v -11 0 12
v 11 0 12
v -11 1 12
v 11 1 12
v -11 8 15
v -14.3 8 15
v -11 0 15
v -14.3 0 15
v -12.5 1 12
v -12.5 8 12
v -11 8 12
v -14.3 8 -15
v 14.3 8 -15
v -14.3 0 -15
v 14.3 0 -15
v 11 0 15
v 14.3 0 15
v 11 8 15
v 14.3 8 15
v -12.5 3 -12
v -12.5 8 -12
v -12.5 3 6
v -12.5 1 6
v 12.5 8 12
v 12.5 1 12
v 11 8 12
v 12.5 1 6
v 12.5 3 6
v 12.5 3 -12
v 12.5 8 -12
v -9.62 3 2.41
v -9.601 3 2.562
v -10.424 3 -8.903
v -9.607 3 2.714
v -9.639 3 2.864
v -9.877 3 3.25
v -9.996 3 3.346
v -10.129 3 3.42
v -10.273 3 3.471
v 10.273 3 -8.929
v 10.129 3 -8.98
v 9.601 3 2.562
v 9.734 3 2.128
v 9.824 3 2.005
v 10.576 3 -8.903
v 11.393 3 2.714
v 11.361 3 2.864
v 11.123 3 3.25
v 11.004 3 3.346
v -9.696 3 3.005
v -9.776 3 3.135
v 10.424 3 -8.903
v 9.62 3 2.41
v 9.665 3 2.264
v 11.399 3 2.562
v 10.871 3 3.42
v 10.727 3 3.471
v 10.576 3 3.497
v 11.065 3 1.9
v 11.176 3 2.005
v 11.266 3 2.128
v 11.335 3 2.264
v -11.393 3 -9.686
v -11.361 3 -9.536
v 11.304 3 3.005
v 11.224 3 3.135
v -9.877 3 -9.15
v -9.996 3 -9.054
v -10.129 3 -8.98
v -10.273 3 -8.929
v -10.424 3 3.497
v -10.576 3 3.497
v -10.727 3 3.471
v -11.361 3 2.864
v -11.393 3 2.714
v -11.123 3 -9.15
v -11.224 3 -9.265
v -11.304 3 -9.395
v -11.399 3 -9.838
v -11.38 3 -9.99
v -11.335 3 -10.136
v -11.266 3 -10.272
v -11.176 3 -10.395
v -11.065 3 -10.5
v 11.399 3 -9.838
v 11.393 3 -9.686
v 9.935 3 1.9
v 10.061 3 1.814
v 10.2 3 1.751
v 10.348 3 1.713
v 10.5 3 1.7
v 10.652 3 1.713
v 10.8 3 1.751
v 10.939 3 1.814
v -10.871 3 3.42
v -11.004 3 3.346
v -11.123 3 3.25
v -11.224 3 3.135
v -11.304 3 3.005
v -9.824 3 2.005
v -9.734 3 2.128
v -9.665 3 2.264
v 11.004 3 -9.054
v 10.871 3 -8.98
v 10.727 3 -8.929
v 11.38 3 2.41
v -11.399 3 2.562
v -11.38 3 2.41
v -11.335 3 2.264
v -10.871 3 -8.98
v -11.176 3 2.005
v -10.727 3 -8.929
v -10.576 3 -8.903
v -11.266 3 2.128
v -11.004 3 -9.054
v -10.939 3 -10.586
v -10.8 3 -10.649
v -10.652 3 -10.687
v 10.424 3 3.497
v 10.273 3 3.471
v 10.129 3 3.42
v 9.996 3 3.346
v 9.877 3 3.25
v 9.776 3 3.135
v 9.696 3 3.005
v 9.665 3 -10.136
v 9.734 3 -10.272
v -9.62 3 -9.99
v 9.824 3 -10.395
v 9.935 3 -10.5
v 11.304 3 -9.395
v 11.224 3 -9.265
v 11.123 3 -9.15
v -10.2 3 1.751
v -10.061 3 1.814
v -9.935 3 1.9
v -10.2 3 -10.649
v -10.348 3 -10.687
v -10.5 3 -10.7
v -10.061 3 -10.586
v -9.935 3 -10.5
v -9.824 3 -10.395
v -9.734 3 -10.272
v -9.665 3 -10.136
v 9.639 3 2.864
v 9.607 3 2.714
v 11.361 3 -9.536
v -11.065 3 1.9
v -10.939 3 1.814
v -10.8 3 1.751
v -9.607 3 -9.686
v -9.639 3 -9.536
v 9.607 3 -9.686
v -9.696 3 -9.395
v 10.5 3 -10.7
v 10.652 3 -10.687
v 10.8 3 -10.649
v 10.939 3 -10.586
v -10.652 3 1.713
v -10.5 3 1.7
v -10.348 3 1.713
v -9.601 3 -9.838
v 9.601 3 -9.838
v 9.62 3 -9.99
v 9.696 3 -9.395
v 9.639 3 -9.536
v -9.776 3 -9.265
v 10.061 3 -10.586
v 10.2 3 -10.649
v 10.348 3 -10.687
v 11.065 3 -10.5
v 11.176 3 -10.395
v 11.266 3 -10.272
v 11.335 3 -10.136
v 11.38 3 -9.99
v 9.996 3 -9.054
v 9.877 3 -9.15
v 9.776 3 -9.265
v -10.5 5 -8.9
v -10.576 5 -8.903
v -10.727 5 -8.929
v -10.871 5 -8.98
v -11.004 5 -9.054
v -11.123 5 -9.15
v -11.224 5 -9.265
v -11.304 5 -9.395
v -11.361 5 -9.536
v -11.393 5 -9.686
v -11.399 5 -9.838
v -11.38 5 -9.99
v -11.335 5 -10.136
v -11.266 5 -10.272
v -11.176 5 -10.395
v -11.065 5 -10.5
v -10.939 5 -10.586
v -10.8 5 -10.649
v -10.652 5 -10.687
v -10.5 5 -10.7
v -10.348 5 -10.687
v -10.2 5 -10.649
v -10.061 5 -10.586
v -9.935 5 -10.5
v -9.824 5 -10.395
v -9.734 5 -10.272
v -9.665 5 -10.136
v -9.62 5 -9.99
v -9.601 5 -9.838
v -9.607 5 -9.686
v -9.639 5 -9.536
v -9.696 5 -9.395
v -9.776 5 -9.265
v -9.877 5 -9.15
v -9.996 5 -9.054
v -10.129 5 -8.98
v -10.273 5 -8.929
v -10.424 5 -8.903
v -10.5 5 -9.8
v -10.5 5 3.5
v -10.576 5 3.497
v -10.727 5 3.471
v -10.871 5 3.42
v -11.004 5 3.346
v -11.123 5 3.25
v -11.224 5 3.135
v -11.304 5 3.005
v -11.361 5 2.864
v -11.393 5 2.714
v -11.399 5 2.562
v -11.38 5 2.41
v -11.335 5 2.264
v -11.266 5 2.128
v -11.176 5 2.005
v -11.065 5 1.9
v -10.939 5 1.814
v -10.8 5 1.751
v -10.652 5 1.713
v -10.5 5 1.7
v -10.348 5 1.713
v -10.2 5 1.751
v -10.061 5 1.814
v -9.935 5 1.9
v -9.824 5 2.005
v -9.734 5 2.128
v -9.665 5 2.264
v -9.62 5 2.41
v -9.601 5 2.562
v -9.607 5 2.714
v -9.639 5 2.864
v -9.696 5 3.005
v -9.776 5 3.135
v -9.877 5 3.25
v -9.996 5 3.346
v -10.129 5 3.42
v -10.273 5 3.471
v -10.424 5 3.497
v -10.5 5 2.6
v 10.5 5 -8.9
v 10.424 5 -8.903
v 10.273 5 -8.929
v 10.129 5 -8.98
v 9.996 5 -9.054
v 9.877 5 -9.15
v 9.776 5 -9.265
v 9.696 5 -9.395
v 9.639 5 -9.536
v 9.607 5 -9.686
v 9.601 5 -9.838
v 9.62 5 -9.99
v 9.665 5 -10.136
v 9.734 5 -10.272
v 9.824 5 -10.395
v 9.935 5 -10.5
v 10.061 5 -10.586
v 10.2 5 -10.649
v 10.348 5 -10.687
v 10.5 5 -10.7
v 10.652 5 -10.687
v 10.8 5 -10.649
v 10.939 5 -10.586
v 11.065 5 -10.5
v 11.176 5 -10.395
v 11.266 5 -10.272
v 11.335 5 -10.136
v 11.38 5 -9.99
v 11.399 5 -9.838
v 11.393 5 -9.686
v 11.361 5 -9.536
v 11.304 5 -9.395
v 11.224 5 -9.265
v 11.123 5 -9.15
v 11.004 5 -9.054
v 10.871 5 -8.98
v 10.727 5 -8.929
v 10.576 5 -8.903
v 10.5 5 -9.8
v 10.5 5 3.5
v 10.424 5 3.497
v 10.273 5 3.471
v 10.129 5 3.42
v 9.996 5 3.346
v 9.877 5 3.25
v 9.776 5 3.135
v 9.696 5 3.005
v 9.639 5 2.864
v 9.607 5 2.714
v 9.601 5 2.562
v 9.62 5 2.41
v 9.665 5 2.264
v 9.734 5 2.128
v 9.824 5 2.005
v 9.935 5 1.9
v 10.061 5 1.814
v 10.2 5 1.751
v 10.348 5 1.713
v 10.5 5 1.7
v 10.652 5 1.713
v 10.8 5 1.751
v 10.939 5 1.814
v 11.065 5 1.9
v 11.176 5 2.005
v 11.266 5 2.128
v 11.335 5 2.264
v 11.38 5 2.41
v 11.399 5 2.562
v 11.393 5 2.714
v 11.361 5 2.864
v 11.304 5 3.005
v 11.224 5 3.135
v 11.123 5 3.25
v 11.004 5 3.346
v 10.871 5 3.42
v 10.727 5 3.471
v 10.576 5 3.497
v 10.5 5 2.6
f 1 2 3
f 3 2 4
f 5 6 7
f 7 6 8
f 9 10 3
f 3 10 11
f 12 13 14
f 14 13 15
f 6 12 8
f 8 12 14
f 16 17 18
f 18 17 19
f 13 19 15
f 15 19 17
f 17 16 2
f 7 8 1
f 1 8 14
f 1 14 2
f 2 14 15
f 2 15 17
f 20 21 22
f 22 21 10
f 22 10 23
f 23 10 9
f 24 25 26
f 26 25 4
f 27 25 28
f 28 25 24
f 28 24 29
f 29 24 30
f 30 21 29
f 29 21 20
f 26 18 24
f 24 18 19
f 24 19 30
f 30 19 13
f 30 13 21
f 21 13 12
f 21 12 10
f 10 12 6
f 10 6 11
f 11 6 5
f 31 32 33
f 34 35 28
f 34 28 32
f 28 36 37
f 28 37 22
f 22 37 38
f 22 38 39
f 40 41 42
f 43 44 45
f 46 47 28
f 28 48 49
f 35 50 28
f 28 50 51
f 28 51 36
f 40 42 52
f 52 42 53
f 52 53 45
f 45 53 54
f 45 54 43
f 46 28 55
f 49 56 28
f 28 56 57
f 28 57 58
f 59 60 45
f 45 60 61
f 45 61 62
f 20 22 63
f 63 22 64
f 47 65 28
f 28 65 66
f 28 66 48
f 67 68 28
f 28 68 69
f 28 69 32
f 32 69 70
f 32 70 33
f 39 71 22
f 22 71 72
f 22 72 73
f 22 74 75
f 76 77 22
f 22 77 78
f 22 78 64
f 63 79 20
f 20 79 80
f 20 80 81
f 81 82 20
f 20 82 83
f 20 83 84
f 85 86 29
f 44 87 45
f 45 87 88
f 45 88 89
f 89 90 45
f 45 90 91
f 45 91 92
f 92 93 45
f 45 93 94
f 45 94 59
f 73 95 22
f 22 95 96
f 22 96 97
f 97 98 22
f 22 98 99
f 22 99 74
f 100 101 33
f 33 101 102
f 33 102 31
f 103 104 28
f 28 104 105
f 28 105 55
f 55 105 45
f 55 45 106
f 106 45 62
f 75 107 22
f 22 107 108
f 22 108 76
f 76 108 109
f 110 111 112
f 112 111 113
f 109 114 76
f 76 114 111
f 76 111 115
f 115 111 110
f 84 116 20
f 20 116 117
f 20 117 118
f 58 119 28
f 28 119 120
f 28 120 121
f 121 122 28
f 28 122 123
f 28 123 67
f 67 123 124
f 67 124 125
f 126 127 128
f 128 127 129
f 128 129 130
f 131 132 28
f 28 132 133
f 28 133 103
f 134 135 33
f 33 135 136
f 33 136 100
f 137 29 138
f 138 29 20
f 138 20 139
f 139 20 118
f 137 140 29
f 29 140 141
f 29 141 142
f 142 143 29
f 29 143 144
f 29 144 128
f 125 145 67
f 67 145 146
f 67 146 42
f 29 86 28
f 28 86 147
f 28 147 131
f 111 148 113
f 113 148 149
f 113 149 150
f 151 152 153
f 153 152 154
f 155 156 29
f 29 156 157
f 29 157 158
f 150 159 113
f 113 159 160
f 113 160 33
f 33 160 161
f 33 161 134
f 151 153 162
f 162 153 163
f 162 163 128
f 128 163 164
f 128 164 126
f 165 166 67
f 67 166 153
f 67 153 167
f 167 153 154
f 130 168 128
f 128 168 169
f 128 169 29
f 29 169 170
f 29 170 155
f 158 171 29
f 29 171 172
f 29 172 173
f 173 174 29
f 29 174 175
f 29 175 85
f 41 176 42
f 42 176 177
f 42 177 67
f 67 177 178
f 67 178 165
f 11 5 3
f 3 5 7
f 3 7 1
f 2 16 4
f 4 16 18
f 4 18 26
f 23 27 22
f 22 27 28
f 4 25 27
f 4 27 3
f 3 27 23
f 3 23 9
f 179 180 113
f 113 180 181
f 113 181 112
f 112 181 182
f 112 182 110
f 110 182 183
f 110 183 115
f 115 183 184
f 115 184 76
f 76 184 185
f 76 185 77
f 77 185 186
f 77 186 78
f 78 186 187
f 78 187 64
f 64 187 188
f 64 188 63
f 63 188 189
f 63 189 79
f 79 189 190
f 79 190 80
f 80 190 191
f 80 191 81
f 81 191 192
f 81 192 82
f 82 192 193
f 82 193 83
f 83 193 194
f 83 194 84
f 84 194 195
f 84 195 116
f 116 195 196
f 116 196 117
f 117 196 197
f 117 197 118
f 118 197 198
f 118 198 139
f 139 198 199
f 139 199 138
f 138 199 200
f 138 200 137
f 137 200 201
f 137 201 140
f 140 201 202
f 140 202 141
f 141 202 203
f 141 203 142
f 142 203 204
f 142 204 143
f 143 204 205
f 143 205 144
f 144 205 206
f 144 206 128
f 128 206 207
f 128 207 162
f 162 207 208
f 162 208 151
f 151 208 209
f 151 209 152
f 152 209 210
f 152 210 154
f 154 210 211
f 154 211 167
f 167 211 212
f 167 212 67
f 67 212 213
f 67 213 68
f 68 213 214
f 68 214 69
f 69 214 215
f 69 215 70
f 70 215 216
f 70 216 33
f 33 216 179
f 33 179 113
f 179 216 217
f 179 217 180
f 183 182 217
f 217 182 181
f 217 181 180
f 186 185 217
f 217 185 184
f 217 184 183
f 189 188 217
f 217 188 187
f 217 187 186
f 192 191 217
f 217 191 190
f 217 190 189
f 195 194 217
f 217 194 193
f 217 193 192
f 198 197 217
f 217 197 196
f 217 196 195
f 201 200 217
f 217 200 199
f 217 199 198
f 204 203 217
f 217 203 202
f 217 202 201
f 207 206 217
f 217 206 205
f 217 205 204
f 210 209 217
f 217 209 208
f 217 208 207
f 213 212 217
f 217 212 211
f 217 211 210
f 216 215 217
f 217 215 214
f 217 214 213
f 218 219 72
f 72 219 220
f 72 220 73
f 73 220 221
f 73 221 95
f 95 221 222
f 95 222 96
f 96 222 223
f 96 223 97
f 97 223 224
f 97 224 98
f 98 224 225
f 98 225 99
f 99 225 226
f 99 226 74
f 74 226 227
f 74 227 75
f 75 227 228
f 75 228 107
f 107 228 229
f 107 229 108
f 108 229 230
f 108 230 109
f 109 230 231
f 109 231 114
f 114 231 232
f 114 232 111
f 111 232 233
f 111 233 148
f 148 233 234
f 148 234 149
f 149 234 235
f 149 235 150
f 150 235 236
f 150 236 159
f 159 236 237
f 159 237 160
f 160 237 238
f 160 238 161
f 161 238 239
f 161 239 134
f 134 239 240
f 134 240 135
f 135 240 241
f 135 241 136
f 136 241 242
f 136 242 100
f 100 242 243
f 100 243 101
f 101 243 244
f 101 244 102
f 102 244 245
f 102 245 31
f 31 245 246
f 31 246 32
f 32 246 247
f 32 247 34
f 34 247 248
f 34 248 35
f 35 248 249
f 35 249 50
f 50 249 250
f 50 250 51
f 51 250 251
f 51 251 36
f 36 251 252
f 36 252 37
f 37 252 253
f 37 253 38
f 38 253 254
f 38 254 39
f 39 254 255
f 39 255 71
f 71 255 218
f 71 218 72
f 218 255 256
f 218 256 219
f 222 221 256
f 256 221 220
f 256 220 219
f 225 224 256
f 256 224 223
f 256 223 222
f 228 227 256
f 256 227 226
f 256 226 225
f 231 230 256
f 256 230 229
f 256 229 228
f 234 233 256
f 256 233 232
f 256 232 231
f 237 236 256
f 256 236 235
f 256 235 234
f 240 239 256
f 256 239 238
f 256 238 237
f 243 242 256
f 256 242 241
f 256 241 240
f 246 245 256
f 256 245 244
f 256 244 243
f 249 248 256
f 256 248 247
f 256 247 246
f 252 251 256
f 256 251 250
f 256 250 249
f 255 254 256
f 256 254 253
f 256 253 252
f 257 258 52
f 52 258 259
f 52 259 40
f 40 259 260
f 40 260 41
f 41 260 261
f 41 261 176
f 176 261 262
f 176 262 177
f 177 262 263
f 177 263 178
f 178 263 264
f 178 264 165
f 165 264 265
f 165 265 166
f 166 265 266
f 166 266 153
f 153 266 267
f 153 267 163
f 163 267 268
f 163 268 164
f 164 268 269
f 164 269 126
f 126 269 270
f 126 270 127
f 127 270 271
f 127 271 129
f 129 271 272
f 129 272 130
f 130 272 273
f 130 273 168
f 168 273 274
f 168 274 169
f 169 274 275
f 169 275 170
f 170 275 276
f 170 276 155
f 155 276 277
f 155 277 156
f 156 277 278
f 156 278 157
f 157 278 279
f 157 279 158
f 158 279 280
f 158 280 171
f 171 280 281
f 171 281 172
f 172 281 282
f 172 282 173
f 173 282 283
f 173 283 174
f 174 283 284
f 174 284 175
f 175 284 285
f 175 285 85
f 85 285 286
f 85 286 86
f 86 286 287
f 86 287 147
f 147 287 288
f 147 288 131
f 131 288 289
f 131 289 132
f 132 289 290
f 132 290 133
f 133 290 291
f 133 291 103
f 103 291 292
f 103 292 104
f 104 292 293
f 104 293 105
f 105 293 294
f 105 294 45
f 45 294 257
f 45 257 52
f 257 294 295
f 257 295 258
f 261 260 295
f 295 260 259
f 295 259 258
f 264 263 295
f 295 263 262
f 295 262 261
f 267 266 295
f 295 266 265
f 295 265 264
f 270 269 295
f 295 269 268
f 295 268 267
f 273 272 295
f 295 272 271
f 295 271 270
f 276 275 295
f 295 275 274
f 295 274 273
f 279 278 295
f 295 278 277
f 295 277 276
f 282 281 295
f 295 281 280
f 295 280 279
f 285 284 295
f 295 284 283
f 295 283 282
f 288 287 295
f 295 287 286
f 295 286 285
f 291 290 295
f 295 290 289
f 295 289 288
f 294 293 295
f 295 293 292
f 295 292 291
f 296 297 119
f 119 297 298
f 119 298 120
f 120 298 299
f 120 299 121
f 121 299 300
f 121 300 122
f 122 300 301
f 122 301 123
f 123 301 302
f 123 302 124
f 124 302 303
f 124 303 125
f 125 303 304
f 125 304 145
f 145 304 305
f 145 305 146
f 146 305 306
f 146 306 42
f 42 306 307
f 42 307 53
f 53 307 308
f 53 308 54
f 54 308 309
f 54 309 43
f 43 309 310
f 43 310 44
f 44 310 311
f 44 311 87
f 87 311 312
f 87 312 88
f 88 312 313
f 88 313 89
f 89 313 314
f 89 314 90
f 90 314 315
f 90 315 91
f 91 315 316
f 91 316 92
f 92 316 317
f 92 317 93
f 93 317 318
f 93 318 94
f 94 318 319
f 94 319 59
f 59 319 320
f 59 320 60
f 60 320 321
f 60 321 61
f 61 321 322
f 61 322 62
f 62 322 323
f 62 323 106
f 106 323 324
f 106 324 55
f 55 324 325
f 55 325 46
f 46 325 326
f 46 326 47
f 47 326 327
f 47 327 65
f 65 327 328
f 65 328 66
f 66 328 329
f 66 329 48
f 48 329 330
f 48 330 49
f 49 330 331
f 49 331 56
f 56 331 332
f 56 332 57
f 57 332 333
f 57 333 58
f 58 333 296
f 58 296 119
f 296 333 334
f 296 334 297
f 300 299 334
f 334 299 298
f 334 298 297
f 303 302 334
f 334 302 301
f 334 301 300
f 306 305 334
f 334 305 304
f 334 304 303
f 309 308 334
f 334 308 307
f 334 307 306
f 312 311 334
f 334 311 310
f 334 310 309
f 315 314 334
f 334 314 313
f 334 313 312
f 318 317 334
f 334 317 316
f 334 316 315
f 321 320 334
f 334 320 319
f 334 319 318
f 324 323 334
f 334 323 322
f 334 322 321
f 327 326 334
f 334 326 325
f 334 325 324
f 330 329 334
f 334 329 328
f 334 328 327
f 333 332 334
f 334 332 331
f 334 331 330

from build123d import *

# Parameters (mm, degrees)
SKETCH_1_W          = 28.6
SKETCH_1_H          = 30
EXTRUDE_1_DEPTH     = 3
SKETCH_1_4_W        = 28.6
SKETCH_1_4_H        = 30
SKETCH_1_4_W_2      = 25
SKETCH_1_4_H_2      = 24
EXTRUDE_2_DEPTH     = 8
SKETCH_2_W          = 22
SKETCH_2_H          = 3
CUT_EXTRUDE_1_DEPTH = 8
SKETCH_3_W          = 25
SKETCH_3_H          = 6
CUT_EXTRUDE_2_DEPTH = 2
SKETCH_4_R          = 0.9
EXTRUDE_3_DEPTH     = 2


with BuildPart() as part:
    # 草图1 → 凸台-拉伸1 (new body)
    with BuildSketch(Plane(origin=(0, 0, 0), x_dir=(1, 0, 0), z_dir=(0, 1, 0))):
        Rectangle(SKETCH_1_W, SKETCH_1_H)
    extrude(amount=EXTRUDE_1_DEPTH)

    # 草图1<4> → 凸台-拉伸2 (add)
    with BuildSketch(Plane(origin=(0, 0, 0), x_dir=(1, 0, 0), z_dir=(0, 1, 0))):
        Rectangle(SKETCH_1_4_W, SKETCH_1_4_H)
        Rectangle(SKETCH_1_4_W_2, SKETCH_1_4_H_2, mode=Mode.SUBTRACT)
    extrude(amount=EXTRUDE_2_DEPTH)

    # 草图2 → 切除-拉伸1 (cut)
    with BuildSketch(Plane(origin=(0, 8, 0), x_dir=(1, 0, 0), z_dir=(0, 1, 0))):
        with Locations((0, -13.5)):
            Rectangle(SKETCH_2_W, SKETCH_2_H)
    extrude(amount=-CUT_EXTRUDE_1_DEPTH, mode=Mode.SUBTRACT)

    # 草图3 → 切除-拉伸2 (cut)
    with BuildSketch(Plane(origin=(0, 3, 0), x_dir=(1, 0, 0), z_dir=(0, 1, 0))):
        with Locations((0, -9)):
            Rectangle(SKETCH_3_W, SKETCH_3_H)
    extrude(amount=-CUT_EXTRUDE_2_DEPTH, mode=Mode.SUBTRACT)

    # 草图4 → 凸台-拉伸3 (add)
    with BuildSketch(Plane(origin=(0, 3, 0), x_dir=(1, 0, 0), z_dir=(0, 1, 0))):
        with Locations((-10.5, 9.8)):
            Circle(SKETCH_4_R)
        with Locations((-10.5, -2.6)):
            Circle(SKETCH_4_R)
        with Locations((10.5, 9.8)):
            Circle(SKETCH_4_R)
        with Locations((10.5, -2.6)):
            Circle(SKETCH_4_R)
    extrude(amount=EXTRUDE_3_DEPTH)


solid = part.part
